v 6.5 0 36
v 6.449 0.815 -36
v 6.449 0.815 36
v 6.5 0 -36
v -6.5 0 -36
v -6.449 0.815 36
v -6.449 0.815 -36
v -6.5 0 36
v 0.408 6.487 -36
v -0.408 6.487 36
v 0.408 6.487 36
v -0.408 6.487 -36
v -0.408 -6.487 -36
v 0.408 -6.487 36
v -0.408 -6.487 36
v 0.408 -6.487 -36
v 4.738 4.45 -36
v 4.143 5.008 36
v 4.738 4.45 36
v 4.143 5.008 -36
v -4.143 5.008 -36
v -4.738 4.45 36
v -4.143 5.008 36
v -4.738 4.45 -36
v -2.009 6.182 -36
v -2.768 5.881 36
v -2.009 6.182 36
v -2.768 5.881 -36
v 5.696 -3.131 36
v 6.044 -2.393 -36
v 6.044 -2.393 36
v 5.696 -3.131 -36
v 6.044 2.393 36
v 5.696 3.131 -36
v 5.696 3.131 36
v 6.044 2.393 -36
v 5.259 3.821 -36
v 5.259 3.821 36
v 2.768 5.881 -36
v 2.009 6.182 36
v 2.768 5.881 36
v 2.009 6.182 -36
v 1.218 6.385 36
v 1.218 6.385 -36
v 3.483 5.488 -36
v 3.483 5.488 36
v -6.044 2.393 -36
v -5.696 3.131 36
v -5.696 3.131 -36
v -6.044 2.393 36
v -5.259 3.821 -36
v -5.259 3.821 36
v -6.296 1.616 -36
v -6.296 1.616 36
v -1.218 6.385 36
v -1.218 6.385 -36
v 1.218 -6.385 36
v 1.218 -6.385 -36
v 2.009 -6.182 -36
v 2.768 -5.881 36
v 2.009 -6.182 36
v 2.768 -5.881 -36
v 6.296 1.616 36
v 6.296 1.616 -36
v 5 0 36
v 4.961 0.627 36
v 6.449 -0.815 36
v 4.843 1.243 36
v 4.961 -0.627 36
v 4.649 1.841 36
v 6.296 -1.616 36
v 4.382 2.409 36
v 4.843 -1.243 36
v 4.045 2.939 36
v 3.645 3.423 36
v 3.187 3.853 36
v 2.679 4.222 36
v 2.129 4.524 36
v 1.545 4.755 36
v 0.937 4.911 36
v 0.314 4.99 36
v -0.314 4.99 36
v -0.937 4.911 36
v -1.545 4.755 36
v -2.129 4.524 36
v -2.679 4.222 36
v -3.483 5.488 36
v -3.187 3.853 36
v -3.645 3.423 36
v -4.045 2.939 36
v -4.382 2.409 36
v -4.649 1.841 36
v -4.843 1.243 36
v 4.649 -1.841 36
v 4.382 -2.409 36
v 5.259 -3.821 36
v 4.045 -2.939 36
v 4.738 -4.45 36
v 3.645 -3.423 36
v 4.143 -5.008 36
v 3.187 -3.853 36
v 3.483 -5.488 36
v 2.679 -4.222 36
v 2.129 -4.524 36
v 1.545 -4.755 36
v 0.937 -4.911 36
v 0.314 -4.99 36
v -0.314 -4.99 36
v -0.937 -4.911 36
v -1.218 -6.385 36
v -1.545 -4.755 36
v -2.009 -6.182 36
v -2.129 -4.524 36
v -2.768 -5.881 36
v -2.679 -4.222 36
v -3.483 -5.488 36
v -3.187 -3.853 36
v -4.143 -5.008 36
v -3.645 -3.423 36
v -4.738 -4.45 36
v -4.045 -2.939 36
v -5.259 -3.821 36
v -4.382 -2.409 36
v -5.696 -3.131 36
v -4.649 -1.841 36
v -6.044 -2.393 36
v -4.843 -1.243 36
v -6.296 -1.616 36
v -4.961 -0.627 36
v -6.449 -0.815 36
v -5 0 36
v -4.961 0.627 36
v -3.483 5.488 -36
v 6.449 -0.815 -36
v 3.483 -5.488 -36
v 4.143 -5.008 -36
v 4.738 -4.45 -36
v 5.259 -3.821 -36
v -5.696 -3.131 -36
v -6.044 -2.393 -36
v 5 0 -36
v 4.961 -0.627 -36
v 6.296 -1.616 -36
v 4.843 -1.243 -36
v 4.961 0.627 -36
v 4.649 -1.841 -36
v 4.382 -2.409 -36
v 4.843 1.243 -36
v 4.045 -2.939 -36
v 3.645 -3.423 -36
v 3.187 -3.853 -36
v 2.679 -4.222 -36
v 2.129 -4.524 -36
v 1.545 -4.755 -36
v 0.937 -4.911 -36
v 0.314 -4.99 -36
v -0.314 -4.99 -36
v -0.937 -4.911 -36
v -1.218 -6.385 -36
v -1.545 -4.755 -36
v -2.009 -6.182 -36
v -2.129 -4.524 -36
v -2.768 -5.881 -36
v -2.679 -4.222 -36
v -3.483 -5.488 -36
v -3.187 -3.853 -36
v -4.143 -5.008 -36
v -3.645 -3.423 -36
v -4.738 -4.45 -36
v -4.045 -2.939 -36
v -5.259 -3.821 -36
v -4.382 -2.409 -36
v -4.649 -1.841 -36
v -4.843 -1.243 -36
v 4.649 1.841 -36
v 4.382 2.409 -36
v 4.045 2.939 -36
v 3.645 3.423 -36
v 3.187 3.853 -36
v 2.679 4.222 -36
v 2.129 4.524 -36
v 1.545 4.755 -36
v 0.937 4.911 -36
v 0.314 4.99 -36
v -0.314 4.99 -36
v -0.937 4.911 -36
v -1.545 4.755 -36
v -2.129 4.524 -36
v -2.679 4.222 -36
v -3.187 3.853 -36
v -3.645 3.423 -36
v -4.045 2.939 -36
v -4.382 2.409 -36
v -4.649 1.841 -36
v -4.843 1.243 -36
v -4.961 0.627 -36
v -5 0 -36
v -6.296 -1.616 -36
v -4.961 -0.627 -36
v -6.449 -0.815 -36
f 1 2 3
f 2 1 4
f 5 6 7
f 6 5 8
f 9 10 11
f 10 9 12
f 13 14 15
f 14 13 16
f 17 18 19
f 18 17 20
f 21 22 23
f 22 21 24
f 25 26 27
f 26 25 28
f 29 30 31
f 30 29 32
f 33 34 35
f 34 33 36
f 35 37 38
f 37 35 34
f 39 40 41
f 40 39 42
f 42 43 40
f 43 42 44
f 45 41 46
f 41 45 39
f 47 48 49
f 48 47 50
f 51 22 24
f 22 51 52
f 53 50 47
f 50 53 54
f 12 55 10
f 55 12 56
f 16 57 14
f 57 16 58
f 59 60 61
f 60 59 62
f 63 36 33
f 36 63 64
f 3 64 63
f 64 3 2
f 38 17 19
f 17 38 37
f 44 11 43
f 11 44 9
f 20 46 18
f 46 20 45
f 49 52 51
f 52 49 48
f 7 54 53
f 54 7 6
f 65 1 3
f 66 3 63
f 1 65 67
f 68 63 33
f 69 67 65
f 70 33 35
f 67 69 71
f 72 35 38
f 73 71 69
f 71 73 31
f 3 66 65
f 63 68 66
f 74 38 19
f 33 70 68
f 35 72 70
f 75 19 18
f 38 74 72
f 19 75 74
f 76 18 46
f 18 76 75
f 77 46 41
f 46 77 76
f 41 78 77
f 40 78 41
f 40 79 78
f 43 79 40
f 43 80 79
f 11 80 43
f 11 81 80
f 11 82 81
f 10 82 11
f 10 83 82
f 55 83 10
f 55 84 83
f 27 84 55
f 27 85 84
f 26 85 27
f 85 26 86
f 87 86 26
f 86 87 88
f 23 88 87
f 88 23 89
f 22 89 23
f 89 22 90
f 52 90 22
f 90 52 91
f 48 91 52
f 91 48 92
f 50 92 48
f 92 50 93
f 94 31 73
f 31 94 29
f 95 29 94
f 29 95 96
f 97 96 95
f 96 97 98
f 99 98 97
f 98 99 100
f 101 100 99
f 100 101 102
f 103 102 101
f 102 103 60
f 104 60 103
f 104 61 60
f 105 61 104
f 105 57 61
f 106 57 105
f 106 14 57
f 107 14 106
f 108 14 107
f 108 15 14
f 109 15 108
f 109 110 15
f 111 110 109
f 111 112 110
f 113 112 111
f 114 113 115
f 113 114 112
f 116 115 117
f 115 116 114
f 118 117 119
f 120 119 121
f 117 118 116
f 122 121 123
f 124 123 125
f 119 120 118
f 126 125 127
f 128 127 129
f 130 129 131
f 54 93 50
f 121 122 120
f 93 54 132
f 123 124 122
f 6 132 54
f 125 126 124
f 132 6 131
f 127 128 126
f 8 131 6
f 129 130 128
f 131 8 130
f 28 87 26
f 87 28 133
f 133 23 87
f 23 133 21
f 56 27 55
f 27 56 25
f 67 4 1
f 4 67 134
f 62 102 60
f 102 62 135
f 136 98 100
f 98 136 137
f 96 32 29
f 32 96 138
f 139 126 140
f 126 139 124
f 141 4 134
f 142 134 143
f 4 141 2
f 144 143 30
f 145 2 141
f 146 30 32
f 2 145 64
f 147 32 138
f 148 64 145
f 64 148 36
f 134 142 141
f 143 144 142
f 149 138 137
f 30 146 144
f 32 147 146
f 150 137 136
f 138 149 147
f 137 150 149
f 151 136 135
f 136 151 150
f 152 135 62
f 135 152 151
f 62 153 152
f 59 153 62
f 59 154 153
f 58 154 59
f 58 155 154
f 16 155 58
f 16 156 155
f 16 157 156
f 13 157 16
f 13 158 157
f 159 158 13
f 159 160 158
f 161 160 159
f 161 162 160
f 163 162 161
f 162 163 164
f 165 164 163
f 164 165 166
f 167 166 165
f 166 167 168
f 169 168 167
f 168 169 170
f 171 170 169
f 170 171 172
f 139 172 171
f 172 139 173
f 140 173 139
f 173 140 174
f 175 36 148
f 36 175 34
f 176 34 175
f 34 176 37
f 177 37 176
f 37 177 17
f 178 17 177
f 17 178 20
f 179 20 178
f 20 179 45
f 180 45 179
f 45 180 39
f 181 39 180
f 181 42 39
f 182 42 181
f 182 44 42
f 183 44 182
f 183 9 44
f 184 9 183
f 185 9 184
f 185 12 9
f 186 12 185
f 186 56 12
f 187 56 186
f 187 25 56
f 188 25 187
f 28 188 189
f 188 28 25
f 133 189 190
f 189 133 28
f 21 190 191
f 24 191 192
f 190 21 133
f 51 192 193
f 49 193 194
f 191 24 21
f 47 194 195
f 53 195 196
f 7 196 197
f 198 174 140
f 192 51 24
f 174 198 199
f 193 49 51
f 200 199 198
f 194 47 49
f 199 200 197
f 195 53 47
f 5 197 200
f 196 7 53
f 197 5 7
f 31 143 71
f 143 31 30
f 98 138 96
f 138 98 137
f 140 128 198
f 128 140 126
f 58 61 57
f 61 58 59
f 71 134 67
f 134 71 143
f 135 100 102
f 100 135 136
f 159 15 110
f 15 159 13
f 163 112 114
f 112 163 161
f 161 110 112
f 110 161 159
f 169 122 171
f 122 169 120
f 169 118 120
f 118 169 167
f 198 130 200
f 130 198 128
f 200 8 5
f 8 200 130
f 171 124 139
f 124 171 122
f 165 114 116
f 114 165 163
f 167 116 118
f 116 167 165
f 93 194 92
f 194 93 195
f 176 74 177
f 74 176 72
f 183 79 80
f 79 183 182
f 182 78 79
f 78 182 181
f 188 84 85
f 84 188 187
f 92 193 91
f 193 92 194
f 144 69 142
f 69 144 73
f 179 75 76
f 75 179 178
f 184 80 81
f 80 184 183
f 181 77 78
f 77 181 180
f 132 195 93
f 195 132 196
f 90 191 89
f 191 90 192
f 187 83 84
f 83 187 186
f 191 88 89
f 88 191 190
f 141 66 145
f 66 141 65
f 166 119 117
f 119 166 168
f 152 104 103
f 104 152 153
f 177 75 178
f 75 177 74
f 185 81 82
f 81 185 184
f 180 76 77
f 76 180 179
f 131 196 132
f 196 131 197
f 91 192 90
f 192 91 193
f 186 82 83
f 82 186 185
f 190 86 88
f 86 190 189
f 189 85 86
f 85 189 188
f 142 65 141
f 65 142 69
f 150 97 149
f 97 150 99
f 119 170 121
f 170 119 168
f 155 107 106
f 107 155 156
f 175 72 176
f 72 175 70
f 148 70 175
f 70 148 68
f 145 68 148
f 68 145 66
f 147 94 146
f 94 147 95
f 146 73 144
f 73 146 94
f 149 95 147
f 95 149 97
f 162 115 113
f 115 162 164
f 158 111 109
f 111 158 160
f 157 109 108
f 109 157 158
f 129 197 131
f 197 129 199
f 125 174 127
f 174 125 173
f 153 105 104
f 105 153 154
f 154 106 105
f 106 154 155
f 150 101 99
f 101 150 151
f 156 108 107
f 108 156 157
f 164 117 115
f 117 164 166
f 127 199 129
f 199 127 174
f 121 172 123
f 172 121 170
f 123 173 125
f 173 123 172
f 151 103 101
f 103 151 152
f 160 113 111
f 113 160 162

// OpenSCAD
$fn = 50;


difference() {
	union() {
		translate(v = [0, 0, -36.0000000000]) {
			cylinder(h = 72, r = 6.5000000000);
		}
	}
	union() {
		translate(v = [0, 0, -100.0000000000]) {
			cylinder(h = 200, r = 5);
		}
	}
}
